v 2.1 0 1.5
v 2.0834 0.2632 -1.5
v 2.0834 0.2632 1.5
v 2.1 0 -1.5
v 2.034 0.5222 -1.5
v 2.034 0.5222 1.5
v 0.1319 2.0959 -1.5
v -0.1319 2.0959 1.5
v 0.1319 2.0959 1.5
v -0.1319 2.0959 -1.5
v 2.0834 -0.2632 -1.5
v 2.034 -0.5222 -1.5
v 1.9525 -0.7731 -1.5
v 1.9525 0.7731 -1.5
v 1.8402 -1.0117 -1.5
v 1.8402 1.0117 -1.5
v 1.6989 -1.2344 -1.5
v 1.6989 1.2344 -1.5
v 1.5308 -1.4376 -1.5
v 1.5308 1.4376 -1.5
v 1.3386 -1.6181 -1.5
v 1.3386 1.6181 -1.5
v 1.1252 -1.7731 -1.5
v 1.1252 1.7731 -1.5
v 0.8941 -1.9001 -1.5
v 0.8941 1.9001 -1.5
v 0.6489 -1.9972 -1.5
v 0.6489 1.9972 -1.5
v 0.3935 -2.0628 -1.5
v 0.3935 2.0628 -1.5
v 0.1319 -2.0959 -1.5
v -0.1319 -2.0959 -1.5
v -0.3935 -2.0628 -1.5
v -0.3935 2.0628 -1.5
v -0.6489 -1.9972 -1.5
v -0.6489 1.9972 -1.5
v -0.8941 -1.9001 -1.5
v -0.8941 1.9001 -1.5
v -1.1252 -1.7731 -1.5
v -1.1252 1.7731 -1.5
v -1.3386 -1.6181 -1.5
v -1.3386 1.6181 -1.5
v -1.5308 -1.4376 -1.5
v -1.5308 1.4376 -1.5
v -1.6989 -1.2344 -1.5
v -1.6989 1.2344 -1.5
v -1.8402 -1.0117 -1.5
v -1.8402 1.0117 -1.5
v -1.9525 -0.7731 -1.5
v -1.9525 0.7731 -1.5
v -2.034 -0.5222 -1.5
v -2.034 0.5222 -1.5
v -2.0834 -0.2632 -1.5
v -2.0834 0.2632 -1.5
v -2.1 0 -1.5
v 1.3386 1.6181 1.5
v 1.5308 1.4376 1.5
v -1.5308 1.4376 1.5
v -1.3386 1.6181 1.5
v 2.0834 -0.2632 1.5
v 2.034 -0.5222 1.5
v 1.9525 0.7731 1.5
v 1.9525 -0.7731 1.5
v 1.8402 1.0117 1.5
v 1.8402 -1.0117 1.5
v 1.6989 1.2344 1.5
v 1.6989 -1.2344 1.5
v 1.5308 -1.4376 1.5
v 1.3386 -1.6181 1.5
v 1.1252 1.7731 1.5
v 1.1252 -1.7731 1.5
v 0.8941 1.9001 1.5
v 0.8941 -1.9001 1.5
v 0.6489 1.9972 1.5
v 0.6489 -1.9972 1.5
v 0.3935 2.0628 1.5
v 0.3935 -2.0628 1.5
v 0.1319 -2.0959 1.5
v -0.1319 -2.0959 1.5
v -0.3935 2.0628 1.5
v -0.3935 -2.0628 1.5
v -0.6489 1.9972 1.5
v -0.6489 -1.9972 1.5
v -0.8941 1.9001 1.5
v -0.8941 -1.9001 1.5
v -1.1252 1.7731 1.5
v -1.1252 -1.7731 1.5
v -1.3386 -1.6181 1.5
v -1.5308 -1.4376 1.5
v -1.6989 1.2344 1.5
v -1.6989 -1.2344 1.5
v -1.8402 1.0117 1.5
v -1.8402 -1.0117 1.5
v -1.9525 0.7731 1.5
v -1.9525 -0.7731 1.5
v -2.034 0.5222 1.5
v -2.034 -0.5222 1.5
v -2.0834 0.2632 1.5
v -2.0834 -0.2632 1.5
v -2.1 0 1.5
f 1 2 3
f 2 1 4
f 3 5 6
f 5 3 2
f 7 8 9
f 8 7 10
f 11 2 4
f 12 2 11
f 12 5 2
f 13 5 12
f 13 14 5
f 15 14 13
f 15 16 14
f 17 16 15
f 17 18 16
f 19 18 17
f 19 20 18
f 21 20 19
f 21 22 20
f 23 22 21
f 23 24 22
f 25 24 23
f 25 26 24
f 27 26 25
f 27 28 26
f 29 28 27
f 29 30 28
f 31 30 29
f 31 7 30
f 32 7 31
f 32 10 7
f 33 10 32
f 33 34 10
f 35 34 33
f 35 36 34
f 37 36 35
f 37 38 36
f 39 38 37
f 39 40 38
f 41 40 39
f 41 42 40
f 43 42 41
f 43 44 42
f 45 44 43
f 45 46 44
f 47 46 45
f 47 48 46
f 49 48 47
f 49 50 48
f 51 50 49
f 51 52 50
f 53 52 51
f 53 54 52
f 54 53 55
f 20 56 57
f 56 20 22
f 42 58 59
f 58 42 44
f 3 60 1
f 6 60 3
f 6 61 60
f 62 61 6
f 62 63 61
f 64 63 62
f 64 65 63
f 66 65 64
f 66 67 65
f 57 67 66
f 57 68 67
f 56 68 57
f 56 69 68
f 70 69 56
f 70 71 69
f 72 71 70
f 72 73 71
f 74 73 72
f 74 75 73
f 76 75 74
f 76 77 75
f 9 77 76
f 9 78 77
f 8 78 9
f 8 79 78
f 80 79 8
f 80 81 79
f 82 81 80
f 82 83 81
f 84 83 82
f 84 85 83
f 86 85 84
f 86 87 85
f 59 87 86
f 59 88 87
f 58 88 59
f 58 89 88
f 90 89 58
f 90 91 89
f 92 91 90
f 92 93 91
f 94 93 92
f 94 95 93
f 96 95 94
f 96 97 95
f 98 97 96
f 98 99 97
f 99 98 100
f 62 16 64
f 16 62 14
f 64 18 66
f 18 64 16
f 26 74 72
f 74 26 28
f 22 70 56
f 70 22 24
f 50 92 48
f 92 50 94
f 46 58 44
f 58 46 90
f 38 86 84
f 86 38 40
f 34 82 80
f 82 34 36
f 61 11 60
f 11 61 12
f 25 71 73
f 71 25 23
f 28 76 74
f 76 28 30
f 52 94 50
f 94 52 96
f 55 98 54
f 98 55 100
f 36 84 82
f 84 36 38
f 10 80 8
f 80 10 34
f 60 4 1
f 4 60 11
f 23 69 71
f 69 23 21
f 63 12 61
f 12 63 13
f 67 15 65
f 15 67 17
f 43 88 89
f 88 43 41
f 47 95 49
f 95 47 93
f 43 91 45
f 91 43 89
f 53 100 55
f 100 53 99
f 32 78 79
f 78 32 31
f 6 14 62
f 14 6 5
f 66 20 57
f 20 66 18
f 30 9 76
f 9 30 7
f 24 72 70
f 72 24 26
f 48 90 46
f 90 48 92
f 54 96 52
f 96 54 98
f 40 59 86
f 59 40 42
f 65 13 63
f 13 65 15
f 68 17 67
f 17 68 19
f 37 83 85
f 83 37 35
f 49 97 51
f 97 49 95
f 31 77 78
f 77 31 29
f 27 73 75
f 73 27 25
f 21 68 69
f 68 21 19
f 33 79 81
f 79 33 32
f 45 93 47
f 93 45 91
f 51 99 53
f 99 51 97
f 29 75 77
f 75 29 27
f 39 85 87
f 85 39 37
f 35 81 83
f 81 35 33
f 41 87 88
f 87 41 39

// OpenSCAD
$fn = 50;


difference() {
	union() {
		translate(v = [0, 0, -1.5000000000]) {
			cylinder(h = 3, r = 2.1000000000);
		}
	}
	union() {
		translate(v = [0, 0, -100.0000000000]) {
			cylinder(h = 200, r = 0);
		}
	}
}
